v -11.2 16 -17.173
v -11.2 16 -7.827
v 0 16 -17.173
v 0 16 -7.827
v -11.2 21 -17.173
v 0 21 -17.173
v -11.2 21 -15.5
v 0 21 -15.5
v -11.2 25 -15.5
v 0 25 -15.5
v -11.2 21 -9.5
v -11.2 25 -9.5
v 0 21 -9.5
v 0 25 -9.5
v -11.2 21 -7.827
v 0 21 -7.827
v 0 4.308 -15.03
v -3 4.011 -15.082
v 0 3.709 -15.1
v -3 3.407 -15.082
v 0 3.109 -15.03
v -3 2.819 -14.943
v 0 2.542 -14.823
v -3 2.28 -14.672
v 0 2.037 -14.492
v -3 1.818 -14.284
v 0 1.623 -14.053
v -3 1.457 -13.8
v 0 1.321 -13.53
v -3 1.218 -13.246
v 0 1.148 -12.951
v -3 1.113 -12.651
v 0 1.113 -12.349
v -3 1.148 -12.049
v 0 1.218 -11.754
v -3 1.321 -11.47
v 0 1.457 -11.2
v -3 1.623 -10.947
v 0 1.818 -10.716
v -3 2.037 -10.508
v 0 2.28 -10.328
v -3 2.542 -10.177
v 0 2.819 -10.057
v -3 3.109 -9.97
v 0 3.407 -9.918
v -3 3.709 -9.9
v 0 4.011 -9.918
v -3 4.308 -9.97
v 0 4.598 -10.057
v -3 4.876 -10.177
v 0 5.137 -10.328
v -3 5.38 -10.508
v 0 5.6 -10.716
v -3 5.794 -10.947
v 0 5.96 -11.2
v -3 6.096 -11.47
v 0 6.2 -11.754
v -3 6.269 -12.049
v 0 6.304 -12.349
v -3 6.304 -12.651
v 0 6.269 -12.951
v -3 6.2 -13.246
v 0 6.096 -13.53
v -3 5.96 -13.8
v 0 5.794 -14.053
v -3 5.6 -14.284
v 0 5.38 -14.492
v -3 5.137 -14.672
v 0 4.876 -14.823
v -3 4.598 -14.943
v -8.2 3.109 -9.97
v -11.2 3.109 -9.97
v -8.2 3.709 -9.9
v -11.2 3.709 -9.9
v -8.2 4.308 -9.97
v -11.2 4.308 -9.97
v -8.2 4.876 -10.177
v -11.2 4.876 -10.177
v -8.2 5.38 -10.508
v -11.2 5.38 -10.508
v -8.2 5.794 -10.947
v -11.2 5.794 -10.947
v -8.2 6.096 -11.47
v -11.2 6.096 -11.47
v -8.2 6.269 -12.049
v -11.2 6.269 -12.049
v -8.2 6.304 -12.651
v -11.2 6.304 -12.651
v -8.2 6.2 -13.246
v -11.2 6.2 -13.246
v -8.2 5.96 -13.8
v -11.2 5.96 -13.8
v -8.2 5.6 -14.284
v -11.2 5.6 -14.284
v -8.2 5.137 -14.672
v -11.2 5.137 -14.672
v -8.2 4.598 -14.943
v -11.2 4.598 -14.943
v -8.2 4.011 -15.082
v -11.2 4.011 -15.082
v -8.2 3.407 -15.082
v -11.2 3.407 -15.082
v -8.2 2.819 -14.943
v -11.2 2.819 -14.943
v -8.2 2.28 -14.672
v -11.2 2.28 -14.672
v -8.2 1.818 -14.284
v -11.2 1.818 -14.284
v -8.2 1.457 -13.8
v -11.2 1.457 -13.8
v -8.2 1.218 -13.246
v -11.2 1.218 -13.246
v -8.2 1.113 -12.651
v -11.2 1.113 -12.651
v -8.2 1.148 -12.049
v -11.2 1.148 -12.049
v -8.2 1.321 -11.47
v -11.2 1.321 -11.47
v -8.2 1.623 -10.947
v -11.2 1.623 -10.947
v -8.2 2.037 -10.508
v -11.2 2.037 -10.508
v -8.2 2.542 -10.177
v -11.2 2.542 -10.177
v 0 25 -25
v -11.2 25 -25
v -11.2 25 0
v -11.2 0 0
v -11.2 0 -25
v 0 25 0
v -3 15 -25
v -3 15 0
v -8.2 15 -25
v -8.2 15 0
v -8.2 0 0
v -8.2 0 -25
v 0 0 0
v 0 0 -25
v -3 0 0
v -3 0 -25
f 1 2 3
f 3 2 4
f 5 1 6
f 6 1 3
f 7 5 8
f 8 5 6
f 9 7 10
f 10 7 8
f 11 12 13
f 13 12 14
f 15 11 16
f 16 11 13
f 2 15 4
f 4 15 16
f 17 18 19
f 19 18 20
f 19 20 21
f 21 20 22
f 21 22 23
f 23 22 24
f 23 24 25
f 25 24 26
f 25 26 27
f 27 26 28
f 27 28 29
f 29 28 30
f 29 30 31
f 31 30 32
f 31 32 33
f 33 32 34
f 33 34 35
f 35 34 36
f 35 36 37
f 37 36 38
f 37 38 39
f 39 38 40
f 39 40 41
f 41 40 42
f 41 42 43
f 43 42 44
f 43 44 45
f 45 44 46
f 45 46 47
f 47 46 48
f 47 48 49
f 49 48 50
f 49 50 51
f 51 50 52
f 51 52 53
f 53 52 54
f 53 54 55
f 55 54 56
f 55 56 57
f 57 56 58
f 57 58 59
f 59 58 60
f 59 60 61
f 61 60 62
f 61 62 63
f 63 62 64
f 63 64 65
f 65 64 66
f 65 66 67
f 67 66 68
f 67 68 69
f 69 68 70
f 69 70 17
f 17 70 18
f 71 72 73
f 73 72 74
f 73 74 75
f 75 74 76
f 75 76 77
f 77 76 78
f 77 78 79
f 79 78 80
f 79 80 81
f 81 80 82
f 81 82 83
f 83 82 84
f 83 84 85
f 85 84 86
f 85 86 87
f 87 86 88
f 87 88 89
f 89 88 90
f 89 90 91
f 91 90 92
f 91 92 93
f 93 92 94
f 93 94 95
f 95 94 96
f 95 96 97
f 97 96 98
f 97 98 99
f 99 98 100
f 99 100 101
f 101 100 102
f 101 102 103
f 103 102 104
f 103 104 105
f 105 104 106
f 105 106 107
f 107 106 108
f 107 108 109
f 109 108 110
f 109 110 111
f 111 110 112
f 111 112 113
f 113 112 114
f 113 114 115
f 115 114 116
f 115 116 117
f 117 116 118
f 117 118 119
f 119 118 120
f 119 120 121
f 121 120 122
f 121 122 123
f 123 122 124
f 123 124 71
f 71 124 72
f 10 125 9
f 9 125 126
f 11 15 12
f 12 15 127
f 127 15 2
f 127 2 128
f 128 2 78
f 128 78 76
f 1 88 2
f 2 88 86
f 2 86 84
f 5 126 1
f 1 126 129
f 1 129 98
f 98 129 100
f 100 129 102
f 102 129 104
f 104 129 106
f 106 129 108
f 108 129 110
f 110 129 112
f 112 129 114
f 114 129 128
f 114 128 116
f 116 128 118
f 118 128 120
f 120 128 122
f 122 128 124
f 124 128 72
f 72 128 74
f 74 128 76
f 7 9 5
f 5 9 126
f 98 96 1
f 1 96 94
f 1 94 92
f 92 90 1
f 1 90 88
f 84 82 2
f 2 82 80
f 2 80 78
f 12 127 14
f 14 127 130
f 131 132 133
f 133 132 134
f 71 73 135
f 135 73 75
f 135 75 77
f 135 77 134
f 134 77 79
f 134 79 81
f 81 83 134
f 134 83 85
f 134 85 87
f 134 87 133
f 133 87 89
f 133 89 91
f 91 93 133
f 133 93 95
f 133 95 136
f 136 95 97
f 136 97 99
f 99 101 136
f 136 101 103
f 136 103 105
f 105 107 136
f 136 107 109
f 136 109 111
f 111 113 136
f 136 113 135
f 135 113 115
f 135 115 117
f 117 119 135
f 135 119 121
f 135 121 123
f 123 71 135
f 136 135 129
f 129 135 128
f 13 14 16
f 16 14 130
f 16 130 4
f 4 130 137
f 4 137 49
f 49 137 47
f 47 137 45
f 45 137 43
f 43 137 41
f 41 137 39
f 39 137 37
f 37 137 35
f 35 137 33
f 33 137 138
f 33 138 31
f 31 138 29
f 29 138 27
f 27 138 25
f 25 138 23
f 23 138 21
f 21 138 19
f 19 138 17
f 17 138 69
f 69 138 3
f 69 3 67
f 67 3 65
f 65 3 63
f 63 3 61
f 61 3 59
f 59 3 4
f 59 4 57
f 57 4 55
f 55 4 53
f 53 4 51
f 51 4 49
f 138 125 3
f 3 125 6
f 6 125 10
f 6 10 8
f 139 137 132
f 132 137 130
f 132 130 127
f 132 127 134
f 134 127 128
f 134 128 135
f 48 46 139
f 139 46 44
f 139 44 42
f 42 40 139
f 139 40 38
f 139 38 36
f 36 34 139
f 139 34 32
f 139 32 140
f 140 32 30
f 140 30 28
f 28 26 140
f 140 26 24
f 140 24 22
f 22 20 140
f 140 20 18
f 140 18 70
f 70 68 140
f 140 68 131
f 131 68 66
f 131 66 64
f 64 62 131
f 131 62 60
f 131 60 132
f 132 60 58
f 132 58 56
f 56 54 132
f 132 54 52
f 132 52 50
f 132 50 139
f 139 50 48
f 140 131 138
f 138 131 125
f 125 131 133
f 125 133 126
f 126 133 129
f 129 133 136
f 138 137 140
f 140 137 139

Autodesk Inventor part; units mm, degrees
ref_plane "YZ Plane" through (0, 0, 0) normal (1, 0, 0) x (0, 1, 0)
ref_plane "XZ Plane" through (0, 0, 0) normal (0, 1, 0) x (-1, 0, 0)
ref_plane "XY Plane" through (0, 0, 0) normal (0, 0, 1) x (1, 0, 0)
sketch "Sketch1" plane through (0, 0, 0) normal (0, 1, 0) x (-1, 0, 0)
  line L0 (0, 0) -> (3, 0)
  line L1 (3, 0) -> (3, -25)
  line L2 (3, -25) -> (0, -25)
  line L3 (0, -25) -> (0, 0)
  line L4 (8.2, 0) -> (11.2, 0)
  line L5 (11.2, 0) -> (11.2, -25)
  line L6 (11.2, -25) -> (8.2, -25)
  line L7 (8.2, -25) -> (8.2, 0)
  point P0 (0, -12.5)
  point P1 (8.2, -12.5)
  dimension "d0" = 25
  dimension "d1" = 3
  dimension "d2" = 25
  dimension "d3" = 3
  dimension "d4" = 5.2
extrude "Extrusion1" add sketch "Sketch1" along normal blind 15
sketch "Sketch2" plane through (0, 15, 0) normal (0, 1, 0) x (1, 0, 0)
  line L0 (-11.2, 25) -> (-11.2, 0) projected
  line L1 (-11.2, 0) -> (0, 0)
  line L2 (0, 0) -> (0, 25)
  line L3 (0, 25) -> (-11.2, 25)
  line L4 (-11.2, 25) -> (-11.2, 0)
  point P0 (0, 0)
extrude "Extrusion2" add sketch "Sketch2" along normal blind 10
sketch "Sketch3" plane through (0, 0, 0) normal (1, 0, 0) x (0, 0, -1)
  line L0 (0, 25) -> (25, 25) projected
  line L1 (12.5, 25) -> (12.5, 0.2306)
  line L2 (9.5, 25) -> (9.5, 21)
  line L3 (9.5, 21) -> (7.8272, 21)
  line L4 (7.8272, 21) -> (7.8272, 16)
  line L5 (7.8272, 16) -> (12.5, 16)
  line L6 (15.5, 25) -> (15.5, 21)
  line L7 (15.5, 21) -> (17.1728, 21)
  line L8 (17.1728, 21) -> (17.1728, 16)
  line L9 (17.1728, 16) -> (12.5, 16)
  line L10 (9.5, 25) -> (15.5, 25)
  circle A0 centre (12.5, 3.7087) radius 2.6
  point P0 (0, 0)
  point P1 (8.6636, 21)
  dimension "d9" = 6
  dimension "d10" = 5
  dimension "d11" = 8
  dimension "d14" = 5.2
extrude "Extrusion3" cut sketch "Sketch3" against normal blind 20
properties part number "RollYAxisEnd" material "Thermoplastic Resin"
